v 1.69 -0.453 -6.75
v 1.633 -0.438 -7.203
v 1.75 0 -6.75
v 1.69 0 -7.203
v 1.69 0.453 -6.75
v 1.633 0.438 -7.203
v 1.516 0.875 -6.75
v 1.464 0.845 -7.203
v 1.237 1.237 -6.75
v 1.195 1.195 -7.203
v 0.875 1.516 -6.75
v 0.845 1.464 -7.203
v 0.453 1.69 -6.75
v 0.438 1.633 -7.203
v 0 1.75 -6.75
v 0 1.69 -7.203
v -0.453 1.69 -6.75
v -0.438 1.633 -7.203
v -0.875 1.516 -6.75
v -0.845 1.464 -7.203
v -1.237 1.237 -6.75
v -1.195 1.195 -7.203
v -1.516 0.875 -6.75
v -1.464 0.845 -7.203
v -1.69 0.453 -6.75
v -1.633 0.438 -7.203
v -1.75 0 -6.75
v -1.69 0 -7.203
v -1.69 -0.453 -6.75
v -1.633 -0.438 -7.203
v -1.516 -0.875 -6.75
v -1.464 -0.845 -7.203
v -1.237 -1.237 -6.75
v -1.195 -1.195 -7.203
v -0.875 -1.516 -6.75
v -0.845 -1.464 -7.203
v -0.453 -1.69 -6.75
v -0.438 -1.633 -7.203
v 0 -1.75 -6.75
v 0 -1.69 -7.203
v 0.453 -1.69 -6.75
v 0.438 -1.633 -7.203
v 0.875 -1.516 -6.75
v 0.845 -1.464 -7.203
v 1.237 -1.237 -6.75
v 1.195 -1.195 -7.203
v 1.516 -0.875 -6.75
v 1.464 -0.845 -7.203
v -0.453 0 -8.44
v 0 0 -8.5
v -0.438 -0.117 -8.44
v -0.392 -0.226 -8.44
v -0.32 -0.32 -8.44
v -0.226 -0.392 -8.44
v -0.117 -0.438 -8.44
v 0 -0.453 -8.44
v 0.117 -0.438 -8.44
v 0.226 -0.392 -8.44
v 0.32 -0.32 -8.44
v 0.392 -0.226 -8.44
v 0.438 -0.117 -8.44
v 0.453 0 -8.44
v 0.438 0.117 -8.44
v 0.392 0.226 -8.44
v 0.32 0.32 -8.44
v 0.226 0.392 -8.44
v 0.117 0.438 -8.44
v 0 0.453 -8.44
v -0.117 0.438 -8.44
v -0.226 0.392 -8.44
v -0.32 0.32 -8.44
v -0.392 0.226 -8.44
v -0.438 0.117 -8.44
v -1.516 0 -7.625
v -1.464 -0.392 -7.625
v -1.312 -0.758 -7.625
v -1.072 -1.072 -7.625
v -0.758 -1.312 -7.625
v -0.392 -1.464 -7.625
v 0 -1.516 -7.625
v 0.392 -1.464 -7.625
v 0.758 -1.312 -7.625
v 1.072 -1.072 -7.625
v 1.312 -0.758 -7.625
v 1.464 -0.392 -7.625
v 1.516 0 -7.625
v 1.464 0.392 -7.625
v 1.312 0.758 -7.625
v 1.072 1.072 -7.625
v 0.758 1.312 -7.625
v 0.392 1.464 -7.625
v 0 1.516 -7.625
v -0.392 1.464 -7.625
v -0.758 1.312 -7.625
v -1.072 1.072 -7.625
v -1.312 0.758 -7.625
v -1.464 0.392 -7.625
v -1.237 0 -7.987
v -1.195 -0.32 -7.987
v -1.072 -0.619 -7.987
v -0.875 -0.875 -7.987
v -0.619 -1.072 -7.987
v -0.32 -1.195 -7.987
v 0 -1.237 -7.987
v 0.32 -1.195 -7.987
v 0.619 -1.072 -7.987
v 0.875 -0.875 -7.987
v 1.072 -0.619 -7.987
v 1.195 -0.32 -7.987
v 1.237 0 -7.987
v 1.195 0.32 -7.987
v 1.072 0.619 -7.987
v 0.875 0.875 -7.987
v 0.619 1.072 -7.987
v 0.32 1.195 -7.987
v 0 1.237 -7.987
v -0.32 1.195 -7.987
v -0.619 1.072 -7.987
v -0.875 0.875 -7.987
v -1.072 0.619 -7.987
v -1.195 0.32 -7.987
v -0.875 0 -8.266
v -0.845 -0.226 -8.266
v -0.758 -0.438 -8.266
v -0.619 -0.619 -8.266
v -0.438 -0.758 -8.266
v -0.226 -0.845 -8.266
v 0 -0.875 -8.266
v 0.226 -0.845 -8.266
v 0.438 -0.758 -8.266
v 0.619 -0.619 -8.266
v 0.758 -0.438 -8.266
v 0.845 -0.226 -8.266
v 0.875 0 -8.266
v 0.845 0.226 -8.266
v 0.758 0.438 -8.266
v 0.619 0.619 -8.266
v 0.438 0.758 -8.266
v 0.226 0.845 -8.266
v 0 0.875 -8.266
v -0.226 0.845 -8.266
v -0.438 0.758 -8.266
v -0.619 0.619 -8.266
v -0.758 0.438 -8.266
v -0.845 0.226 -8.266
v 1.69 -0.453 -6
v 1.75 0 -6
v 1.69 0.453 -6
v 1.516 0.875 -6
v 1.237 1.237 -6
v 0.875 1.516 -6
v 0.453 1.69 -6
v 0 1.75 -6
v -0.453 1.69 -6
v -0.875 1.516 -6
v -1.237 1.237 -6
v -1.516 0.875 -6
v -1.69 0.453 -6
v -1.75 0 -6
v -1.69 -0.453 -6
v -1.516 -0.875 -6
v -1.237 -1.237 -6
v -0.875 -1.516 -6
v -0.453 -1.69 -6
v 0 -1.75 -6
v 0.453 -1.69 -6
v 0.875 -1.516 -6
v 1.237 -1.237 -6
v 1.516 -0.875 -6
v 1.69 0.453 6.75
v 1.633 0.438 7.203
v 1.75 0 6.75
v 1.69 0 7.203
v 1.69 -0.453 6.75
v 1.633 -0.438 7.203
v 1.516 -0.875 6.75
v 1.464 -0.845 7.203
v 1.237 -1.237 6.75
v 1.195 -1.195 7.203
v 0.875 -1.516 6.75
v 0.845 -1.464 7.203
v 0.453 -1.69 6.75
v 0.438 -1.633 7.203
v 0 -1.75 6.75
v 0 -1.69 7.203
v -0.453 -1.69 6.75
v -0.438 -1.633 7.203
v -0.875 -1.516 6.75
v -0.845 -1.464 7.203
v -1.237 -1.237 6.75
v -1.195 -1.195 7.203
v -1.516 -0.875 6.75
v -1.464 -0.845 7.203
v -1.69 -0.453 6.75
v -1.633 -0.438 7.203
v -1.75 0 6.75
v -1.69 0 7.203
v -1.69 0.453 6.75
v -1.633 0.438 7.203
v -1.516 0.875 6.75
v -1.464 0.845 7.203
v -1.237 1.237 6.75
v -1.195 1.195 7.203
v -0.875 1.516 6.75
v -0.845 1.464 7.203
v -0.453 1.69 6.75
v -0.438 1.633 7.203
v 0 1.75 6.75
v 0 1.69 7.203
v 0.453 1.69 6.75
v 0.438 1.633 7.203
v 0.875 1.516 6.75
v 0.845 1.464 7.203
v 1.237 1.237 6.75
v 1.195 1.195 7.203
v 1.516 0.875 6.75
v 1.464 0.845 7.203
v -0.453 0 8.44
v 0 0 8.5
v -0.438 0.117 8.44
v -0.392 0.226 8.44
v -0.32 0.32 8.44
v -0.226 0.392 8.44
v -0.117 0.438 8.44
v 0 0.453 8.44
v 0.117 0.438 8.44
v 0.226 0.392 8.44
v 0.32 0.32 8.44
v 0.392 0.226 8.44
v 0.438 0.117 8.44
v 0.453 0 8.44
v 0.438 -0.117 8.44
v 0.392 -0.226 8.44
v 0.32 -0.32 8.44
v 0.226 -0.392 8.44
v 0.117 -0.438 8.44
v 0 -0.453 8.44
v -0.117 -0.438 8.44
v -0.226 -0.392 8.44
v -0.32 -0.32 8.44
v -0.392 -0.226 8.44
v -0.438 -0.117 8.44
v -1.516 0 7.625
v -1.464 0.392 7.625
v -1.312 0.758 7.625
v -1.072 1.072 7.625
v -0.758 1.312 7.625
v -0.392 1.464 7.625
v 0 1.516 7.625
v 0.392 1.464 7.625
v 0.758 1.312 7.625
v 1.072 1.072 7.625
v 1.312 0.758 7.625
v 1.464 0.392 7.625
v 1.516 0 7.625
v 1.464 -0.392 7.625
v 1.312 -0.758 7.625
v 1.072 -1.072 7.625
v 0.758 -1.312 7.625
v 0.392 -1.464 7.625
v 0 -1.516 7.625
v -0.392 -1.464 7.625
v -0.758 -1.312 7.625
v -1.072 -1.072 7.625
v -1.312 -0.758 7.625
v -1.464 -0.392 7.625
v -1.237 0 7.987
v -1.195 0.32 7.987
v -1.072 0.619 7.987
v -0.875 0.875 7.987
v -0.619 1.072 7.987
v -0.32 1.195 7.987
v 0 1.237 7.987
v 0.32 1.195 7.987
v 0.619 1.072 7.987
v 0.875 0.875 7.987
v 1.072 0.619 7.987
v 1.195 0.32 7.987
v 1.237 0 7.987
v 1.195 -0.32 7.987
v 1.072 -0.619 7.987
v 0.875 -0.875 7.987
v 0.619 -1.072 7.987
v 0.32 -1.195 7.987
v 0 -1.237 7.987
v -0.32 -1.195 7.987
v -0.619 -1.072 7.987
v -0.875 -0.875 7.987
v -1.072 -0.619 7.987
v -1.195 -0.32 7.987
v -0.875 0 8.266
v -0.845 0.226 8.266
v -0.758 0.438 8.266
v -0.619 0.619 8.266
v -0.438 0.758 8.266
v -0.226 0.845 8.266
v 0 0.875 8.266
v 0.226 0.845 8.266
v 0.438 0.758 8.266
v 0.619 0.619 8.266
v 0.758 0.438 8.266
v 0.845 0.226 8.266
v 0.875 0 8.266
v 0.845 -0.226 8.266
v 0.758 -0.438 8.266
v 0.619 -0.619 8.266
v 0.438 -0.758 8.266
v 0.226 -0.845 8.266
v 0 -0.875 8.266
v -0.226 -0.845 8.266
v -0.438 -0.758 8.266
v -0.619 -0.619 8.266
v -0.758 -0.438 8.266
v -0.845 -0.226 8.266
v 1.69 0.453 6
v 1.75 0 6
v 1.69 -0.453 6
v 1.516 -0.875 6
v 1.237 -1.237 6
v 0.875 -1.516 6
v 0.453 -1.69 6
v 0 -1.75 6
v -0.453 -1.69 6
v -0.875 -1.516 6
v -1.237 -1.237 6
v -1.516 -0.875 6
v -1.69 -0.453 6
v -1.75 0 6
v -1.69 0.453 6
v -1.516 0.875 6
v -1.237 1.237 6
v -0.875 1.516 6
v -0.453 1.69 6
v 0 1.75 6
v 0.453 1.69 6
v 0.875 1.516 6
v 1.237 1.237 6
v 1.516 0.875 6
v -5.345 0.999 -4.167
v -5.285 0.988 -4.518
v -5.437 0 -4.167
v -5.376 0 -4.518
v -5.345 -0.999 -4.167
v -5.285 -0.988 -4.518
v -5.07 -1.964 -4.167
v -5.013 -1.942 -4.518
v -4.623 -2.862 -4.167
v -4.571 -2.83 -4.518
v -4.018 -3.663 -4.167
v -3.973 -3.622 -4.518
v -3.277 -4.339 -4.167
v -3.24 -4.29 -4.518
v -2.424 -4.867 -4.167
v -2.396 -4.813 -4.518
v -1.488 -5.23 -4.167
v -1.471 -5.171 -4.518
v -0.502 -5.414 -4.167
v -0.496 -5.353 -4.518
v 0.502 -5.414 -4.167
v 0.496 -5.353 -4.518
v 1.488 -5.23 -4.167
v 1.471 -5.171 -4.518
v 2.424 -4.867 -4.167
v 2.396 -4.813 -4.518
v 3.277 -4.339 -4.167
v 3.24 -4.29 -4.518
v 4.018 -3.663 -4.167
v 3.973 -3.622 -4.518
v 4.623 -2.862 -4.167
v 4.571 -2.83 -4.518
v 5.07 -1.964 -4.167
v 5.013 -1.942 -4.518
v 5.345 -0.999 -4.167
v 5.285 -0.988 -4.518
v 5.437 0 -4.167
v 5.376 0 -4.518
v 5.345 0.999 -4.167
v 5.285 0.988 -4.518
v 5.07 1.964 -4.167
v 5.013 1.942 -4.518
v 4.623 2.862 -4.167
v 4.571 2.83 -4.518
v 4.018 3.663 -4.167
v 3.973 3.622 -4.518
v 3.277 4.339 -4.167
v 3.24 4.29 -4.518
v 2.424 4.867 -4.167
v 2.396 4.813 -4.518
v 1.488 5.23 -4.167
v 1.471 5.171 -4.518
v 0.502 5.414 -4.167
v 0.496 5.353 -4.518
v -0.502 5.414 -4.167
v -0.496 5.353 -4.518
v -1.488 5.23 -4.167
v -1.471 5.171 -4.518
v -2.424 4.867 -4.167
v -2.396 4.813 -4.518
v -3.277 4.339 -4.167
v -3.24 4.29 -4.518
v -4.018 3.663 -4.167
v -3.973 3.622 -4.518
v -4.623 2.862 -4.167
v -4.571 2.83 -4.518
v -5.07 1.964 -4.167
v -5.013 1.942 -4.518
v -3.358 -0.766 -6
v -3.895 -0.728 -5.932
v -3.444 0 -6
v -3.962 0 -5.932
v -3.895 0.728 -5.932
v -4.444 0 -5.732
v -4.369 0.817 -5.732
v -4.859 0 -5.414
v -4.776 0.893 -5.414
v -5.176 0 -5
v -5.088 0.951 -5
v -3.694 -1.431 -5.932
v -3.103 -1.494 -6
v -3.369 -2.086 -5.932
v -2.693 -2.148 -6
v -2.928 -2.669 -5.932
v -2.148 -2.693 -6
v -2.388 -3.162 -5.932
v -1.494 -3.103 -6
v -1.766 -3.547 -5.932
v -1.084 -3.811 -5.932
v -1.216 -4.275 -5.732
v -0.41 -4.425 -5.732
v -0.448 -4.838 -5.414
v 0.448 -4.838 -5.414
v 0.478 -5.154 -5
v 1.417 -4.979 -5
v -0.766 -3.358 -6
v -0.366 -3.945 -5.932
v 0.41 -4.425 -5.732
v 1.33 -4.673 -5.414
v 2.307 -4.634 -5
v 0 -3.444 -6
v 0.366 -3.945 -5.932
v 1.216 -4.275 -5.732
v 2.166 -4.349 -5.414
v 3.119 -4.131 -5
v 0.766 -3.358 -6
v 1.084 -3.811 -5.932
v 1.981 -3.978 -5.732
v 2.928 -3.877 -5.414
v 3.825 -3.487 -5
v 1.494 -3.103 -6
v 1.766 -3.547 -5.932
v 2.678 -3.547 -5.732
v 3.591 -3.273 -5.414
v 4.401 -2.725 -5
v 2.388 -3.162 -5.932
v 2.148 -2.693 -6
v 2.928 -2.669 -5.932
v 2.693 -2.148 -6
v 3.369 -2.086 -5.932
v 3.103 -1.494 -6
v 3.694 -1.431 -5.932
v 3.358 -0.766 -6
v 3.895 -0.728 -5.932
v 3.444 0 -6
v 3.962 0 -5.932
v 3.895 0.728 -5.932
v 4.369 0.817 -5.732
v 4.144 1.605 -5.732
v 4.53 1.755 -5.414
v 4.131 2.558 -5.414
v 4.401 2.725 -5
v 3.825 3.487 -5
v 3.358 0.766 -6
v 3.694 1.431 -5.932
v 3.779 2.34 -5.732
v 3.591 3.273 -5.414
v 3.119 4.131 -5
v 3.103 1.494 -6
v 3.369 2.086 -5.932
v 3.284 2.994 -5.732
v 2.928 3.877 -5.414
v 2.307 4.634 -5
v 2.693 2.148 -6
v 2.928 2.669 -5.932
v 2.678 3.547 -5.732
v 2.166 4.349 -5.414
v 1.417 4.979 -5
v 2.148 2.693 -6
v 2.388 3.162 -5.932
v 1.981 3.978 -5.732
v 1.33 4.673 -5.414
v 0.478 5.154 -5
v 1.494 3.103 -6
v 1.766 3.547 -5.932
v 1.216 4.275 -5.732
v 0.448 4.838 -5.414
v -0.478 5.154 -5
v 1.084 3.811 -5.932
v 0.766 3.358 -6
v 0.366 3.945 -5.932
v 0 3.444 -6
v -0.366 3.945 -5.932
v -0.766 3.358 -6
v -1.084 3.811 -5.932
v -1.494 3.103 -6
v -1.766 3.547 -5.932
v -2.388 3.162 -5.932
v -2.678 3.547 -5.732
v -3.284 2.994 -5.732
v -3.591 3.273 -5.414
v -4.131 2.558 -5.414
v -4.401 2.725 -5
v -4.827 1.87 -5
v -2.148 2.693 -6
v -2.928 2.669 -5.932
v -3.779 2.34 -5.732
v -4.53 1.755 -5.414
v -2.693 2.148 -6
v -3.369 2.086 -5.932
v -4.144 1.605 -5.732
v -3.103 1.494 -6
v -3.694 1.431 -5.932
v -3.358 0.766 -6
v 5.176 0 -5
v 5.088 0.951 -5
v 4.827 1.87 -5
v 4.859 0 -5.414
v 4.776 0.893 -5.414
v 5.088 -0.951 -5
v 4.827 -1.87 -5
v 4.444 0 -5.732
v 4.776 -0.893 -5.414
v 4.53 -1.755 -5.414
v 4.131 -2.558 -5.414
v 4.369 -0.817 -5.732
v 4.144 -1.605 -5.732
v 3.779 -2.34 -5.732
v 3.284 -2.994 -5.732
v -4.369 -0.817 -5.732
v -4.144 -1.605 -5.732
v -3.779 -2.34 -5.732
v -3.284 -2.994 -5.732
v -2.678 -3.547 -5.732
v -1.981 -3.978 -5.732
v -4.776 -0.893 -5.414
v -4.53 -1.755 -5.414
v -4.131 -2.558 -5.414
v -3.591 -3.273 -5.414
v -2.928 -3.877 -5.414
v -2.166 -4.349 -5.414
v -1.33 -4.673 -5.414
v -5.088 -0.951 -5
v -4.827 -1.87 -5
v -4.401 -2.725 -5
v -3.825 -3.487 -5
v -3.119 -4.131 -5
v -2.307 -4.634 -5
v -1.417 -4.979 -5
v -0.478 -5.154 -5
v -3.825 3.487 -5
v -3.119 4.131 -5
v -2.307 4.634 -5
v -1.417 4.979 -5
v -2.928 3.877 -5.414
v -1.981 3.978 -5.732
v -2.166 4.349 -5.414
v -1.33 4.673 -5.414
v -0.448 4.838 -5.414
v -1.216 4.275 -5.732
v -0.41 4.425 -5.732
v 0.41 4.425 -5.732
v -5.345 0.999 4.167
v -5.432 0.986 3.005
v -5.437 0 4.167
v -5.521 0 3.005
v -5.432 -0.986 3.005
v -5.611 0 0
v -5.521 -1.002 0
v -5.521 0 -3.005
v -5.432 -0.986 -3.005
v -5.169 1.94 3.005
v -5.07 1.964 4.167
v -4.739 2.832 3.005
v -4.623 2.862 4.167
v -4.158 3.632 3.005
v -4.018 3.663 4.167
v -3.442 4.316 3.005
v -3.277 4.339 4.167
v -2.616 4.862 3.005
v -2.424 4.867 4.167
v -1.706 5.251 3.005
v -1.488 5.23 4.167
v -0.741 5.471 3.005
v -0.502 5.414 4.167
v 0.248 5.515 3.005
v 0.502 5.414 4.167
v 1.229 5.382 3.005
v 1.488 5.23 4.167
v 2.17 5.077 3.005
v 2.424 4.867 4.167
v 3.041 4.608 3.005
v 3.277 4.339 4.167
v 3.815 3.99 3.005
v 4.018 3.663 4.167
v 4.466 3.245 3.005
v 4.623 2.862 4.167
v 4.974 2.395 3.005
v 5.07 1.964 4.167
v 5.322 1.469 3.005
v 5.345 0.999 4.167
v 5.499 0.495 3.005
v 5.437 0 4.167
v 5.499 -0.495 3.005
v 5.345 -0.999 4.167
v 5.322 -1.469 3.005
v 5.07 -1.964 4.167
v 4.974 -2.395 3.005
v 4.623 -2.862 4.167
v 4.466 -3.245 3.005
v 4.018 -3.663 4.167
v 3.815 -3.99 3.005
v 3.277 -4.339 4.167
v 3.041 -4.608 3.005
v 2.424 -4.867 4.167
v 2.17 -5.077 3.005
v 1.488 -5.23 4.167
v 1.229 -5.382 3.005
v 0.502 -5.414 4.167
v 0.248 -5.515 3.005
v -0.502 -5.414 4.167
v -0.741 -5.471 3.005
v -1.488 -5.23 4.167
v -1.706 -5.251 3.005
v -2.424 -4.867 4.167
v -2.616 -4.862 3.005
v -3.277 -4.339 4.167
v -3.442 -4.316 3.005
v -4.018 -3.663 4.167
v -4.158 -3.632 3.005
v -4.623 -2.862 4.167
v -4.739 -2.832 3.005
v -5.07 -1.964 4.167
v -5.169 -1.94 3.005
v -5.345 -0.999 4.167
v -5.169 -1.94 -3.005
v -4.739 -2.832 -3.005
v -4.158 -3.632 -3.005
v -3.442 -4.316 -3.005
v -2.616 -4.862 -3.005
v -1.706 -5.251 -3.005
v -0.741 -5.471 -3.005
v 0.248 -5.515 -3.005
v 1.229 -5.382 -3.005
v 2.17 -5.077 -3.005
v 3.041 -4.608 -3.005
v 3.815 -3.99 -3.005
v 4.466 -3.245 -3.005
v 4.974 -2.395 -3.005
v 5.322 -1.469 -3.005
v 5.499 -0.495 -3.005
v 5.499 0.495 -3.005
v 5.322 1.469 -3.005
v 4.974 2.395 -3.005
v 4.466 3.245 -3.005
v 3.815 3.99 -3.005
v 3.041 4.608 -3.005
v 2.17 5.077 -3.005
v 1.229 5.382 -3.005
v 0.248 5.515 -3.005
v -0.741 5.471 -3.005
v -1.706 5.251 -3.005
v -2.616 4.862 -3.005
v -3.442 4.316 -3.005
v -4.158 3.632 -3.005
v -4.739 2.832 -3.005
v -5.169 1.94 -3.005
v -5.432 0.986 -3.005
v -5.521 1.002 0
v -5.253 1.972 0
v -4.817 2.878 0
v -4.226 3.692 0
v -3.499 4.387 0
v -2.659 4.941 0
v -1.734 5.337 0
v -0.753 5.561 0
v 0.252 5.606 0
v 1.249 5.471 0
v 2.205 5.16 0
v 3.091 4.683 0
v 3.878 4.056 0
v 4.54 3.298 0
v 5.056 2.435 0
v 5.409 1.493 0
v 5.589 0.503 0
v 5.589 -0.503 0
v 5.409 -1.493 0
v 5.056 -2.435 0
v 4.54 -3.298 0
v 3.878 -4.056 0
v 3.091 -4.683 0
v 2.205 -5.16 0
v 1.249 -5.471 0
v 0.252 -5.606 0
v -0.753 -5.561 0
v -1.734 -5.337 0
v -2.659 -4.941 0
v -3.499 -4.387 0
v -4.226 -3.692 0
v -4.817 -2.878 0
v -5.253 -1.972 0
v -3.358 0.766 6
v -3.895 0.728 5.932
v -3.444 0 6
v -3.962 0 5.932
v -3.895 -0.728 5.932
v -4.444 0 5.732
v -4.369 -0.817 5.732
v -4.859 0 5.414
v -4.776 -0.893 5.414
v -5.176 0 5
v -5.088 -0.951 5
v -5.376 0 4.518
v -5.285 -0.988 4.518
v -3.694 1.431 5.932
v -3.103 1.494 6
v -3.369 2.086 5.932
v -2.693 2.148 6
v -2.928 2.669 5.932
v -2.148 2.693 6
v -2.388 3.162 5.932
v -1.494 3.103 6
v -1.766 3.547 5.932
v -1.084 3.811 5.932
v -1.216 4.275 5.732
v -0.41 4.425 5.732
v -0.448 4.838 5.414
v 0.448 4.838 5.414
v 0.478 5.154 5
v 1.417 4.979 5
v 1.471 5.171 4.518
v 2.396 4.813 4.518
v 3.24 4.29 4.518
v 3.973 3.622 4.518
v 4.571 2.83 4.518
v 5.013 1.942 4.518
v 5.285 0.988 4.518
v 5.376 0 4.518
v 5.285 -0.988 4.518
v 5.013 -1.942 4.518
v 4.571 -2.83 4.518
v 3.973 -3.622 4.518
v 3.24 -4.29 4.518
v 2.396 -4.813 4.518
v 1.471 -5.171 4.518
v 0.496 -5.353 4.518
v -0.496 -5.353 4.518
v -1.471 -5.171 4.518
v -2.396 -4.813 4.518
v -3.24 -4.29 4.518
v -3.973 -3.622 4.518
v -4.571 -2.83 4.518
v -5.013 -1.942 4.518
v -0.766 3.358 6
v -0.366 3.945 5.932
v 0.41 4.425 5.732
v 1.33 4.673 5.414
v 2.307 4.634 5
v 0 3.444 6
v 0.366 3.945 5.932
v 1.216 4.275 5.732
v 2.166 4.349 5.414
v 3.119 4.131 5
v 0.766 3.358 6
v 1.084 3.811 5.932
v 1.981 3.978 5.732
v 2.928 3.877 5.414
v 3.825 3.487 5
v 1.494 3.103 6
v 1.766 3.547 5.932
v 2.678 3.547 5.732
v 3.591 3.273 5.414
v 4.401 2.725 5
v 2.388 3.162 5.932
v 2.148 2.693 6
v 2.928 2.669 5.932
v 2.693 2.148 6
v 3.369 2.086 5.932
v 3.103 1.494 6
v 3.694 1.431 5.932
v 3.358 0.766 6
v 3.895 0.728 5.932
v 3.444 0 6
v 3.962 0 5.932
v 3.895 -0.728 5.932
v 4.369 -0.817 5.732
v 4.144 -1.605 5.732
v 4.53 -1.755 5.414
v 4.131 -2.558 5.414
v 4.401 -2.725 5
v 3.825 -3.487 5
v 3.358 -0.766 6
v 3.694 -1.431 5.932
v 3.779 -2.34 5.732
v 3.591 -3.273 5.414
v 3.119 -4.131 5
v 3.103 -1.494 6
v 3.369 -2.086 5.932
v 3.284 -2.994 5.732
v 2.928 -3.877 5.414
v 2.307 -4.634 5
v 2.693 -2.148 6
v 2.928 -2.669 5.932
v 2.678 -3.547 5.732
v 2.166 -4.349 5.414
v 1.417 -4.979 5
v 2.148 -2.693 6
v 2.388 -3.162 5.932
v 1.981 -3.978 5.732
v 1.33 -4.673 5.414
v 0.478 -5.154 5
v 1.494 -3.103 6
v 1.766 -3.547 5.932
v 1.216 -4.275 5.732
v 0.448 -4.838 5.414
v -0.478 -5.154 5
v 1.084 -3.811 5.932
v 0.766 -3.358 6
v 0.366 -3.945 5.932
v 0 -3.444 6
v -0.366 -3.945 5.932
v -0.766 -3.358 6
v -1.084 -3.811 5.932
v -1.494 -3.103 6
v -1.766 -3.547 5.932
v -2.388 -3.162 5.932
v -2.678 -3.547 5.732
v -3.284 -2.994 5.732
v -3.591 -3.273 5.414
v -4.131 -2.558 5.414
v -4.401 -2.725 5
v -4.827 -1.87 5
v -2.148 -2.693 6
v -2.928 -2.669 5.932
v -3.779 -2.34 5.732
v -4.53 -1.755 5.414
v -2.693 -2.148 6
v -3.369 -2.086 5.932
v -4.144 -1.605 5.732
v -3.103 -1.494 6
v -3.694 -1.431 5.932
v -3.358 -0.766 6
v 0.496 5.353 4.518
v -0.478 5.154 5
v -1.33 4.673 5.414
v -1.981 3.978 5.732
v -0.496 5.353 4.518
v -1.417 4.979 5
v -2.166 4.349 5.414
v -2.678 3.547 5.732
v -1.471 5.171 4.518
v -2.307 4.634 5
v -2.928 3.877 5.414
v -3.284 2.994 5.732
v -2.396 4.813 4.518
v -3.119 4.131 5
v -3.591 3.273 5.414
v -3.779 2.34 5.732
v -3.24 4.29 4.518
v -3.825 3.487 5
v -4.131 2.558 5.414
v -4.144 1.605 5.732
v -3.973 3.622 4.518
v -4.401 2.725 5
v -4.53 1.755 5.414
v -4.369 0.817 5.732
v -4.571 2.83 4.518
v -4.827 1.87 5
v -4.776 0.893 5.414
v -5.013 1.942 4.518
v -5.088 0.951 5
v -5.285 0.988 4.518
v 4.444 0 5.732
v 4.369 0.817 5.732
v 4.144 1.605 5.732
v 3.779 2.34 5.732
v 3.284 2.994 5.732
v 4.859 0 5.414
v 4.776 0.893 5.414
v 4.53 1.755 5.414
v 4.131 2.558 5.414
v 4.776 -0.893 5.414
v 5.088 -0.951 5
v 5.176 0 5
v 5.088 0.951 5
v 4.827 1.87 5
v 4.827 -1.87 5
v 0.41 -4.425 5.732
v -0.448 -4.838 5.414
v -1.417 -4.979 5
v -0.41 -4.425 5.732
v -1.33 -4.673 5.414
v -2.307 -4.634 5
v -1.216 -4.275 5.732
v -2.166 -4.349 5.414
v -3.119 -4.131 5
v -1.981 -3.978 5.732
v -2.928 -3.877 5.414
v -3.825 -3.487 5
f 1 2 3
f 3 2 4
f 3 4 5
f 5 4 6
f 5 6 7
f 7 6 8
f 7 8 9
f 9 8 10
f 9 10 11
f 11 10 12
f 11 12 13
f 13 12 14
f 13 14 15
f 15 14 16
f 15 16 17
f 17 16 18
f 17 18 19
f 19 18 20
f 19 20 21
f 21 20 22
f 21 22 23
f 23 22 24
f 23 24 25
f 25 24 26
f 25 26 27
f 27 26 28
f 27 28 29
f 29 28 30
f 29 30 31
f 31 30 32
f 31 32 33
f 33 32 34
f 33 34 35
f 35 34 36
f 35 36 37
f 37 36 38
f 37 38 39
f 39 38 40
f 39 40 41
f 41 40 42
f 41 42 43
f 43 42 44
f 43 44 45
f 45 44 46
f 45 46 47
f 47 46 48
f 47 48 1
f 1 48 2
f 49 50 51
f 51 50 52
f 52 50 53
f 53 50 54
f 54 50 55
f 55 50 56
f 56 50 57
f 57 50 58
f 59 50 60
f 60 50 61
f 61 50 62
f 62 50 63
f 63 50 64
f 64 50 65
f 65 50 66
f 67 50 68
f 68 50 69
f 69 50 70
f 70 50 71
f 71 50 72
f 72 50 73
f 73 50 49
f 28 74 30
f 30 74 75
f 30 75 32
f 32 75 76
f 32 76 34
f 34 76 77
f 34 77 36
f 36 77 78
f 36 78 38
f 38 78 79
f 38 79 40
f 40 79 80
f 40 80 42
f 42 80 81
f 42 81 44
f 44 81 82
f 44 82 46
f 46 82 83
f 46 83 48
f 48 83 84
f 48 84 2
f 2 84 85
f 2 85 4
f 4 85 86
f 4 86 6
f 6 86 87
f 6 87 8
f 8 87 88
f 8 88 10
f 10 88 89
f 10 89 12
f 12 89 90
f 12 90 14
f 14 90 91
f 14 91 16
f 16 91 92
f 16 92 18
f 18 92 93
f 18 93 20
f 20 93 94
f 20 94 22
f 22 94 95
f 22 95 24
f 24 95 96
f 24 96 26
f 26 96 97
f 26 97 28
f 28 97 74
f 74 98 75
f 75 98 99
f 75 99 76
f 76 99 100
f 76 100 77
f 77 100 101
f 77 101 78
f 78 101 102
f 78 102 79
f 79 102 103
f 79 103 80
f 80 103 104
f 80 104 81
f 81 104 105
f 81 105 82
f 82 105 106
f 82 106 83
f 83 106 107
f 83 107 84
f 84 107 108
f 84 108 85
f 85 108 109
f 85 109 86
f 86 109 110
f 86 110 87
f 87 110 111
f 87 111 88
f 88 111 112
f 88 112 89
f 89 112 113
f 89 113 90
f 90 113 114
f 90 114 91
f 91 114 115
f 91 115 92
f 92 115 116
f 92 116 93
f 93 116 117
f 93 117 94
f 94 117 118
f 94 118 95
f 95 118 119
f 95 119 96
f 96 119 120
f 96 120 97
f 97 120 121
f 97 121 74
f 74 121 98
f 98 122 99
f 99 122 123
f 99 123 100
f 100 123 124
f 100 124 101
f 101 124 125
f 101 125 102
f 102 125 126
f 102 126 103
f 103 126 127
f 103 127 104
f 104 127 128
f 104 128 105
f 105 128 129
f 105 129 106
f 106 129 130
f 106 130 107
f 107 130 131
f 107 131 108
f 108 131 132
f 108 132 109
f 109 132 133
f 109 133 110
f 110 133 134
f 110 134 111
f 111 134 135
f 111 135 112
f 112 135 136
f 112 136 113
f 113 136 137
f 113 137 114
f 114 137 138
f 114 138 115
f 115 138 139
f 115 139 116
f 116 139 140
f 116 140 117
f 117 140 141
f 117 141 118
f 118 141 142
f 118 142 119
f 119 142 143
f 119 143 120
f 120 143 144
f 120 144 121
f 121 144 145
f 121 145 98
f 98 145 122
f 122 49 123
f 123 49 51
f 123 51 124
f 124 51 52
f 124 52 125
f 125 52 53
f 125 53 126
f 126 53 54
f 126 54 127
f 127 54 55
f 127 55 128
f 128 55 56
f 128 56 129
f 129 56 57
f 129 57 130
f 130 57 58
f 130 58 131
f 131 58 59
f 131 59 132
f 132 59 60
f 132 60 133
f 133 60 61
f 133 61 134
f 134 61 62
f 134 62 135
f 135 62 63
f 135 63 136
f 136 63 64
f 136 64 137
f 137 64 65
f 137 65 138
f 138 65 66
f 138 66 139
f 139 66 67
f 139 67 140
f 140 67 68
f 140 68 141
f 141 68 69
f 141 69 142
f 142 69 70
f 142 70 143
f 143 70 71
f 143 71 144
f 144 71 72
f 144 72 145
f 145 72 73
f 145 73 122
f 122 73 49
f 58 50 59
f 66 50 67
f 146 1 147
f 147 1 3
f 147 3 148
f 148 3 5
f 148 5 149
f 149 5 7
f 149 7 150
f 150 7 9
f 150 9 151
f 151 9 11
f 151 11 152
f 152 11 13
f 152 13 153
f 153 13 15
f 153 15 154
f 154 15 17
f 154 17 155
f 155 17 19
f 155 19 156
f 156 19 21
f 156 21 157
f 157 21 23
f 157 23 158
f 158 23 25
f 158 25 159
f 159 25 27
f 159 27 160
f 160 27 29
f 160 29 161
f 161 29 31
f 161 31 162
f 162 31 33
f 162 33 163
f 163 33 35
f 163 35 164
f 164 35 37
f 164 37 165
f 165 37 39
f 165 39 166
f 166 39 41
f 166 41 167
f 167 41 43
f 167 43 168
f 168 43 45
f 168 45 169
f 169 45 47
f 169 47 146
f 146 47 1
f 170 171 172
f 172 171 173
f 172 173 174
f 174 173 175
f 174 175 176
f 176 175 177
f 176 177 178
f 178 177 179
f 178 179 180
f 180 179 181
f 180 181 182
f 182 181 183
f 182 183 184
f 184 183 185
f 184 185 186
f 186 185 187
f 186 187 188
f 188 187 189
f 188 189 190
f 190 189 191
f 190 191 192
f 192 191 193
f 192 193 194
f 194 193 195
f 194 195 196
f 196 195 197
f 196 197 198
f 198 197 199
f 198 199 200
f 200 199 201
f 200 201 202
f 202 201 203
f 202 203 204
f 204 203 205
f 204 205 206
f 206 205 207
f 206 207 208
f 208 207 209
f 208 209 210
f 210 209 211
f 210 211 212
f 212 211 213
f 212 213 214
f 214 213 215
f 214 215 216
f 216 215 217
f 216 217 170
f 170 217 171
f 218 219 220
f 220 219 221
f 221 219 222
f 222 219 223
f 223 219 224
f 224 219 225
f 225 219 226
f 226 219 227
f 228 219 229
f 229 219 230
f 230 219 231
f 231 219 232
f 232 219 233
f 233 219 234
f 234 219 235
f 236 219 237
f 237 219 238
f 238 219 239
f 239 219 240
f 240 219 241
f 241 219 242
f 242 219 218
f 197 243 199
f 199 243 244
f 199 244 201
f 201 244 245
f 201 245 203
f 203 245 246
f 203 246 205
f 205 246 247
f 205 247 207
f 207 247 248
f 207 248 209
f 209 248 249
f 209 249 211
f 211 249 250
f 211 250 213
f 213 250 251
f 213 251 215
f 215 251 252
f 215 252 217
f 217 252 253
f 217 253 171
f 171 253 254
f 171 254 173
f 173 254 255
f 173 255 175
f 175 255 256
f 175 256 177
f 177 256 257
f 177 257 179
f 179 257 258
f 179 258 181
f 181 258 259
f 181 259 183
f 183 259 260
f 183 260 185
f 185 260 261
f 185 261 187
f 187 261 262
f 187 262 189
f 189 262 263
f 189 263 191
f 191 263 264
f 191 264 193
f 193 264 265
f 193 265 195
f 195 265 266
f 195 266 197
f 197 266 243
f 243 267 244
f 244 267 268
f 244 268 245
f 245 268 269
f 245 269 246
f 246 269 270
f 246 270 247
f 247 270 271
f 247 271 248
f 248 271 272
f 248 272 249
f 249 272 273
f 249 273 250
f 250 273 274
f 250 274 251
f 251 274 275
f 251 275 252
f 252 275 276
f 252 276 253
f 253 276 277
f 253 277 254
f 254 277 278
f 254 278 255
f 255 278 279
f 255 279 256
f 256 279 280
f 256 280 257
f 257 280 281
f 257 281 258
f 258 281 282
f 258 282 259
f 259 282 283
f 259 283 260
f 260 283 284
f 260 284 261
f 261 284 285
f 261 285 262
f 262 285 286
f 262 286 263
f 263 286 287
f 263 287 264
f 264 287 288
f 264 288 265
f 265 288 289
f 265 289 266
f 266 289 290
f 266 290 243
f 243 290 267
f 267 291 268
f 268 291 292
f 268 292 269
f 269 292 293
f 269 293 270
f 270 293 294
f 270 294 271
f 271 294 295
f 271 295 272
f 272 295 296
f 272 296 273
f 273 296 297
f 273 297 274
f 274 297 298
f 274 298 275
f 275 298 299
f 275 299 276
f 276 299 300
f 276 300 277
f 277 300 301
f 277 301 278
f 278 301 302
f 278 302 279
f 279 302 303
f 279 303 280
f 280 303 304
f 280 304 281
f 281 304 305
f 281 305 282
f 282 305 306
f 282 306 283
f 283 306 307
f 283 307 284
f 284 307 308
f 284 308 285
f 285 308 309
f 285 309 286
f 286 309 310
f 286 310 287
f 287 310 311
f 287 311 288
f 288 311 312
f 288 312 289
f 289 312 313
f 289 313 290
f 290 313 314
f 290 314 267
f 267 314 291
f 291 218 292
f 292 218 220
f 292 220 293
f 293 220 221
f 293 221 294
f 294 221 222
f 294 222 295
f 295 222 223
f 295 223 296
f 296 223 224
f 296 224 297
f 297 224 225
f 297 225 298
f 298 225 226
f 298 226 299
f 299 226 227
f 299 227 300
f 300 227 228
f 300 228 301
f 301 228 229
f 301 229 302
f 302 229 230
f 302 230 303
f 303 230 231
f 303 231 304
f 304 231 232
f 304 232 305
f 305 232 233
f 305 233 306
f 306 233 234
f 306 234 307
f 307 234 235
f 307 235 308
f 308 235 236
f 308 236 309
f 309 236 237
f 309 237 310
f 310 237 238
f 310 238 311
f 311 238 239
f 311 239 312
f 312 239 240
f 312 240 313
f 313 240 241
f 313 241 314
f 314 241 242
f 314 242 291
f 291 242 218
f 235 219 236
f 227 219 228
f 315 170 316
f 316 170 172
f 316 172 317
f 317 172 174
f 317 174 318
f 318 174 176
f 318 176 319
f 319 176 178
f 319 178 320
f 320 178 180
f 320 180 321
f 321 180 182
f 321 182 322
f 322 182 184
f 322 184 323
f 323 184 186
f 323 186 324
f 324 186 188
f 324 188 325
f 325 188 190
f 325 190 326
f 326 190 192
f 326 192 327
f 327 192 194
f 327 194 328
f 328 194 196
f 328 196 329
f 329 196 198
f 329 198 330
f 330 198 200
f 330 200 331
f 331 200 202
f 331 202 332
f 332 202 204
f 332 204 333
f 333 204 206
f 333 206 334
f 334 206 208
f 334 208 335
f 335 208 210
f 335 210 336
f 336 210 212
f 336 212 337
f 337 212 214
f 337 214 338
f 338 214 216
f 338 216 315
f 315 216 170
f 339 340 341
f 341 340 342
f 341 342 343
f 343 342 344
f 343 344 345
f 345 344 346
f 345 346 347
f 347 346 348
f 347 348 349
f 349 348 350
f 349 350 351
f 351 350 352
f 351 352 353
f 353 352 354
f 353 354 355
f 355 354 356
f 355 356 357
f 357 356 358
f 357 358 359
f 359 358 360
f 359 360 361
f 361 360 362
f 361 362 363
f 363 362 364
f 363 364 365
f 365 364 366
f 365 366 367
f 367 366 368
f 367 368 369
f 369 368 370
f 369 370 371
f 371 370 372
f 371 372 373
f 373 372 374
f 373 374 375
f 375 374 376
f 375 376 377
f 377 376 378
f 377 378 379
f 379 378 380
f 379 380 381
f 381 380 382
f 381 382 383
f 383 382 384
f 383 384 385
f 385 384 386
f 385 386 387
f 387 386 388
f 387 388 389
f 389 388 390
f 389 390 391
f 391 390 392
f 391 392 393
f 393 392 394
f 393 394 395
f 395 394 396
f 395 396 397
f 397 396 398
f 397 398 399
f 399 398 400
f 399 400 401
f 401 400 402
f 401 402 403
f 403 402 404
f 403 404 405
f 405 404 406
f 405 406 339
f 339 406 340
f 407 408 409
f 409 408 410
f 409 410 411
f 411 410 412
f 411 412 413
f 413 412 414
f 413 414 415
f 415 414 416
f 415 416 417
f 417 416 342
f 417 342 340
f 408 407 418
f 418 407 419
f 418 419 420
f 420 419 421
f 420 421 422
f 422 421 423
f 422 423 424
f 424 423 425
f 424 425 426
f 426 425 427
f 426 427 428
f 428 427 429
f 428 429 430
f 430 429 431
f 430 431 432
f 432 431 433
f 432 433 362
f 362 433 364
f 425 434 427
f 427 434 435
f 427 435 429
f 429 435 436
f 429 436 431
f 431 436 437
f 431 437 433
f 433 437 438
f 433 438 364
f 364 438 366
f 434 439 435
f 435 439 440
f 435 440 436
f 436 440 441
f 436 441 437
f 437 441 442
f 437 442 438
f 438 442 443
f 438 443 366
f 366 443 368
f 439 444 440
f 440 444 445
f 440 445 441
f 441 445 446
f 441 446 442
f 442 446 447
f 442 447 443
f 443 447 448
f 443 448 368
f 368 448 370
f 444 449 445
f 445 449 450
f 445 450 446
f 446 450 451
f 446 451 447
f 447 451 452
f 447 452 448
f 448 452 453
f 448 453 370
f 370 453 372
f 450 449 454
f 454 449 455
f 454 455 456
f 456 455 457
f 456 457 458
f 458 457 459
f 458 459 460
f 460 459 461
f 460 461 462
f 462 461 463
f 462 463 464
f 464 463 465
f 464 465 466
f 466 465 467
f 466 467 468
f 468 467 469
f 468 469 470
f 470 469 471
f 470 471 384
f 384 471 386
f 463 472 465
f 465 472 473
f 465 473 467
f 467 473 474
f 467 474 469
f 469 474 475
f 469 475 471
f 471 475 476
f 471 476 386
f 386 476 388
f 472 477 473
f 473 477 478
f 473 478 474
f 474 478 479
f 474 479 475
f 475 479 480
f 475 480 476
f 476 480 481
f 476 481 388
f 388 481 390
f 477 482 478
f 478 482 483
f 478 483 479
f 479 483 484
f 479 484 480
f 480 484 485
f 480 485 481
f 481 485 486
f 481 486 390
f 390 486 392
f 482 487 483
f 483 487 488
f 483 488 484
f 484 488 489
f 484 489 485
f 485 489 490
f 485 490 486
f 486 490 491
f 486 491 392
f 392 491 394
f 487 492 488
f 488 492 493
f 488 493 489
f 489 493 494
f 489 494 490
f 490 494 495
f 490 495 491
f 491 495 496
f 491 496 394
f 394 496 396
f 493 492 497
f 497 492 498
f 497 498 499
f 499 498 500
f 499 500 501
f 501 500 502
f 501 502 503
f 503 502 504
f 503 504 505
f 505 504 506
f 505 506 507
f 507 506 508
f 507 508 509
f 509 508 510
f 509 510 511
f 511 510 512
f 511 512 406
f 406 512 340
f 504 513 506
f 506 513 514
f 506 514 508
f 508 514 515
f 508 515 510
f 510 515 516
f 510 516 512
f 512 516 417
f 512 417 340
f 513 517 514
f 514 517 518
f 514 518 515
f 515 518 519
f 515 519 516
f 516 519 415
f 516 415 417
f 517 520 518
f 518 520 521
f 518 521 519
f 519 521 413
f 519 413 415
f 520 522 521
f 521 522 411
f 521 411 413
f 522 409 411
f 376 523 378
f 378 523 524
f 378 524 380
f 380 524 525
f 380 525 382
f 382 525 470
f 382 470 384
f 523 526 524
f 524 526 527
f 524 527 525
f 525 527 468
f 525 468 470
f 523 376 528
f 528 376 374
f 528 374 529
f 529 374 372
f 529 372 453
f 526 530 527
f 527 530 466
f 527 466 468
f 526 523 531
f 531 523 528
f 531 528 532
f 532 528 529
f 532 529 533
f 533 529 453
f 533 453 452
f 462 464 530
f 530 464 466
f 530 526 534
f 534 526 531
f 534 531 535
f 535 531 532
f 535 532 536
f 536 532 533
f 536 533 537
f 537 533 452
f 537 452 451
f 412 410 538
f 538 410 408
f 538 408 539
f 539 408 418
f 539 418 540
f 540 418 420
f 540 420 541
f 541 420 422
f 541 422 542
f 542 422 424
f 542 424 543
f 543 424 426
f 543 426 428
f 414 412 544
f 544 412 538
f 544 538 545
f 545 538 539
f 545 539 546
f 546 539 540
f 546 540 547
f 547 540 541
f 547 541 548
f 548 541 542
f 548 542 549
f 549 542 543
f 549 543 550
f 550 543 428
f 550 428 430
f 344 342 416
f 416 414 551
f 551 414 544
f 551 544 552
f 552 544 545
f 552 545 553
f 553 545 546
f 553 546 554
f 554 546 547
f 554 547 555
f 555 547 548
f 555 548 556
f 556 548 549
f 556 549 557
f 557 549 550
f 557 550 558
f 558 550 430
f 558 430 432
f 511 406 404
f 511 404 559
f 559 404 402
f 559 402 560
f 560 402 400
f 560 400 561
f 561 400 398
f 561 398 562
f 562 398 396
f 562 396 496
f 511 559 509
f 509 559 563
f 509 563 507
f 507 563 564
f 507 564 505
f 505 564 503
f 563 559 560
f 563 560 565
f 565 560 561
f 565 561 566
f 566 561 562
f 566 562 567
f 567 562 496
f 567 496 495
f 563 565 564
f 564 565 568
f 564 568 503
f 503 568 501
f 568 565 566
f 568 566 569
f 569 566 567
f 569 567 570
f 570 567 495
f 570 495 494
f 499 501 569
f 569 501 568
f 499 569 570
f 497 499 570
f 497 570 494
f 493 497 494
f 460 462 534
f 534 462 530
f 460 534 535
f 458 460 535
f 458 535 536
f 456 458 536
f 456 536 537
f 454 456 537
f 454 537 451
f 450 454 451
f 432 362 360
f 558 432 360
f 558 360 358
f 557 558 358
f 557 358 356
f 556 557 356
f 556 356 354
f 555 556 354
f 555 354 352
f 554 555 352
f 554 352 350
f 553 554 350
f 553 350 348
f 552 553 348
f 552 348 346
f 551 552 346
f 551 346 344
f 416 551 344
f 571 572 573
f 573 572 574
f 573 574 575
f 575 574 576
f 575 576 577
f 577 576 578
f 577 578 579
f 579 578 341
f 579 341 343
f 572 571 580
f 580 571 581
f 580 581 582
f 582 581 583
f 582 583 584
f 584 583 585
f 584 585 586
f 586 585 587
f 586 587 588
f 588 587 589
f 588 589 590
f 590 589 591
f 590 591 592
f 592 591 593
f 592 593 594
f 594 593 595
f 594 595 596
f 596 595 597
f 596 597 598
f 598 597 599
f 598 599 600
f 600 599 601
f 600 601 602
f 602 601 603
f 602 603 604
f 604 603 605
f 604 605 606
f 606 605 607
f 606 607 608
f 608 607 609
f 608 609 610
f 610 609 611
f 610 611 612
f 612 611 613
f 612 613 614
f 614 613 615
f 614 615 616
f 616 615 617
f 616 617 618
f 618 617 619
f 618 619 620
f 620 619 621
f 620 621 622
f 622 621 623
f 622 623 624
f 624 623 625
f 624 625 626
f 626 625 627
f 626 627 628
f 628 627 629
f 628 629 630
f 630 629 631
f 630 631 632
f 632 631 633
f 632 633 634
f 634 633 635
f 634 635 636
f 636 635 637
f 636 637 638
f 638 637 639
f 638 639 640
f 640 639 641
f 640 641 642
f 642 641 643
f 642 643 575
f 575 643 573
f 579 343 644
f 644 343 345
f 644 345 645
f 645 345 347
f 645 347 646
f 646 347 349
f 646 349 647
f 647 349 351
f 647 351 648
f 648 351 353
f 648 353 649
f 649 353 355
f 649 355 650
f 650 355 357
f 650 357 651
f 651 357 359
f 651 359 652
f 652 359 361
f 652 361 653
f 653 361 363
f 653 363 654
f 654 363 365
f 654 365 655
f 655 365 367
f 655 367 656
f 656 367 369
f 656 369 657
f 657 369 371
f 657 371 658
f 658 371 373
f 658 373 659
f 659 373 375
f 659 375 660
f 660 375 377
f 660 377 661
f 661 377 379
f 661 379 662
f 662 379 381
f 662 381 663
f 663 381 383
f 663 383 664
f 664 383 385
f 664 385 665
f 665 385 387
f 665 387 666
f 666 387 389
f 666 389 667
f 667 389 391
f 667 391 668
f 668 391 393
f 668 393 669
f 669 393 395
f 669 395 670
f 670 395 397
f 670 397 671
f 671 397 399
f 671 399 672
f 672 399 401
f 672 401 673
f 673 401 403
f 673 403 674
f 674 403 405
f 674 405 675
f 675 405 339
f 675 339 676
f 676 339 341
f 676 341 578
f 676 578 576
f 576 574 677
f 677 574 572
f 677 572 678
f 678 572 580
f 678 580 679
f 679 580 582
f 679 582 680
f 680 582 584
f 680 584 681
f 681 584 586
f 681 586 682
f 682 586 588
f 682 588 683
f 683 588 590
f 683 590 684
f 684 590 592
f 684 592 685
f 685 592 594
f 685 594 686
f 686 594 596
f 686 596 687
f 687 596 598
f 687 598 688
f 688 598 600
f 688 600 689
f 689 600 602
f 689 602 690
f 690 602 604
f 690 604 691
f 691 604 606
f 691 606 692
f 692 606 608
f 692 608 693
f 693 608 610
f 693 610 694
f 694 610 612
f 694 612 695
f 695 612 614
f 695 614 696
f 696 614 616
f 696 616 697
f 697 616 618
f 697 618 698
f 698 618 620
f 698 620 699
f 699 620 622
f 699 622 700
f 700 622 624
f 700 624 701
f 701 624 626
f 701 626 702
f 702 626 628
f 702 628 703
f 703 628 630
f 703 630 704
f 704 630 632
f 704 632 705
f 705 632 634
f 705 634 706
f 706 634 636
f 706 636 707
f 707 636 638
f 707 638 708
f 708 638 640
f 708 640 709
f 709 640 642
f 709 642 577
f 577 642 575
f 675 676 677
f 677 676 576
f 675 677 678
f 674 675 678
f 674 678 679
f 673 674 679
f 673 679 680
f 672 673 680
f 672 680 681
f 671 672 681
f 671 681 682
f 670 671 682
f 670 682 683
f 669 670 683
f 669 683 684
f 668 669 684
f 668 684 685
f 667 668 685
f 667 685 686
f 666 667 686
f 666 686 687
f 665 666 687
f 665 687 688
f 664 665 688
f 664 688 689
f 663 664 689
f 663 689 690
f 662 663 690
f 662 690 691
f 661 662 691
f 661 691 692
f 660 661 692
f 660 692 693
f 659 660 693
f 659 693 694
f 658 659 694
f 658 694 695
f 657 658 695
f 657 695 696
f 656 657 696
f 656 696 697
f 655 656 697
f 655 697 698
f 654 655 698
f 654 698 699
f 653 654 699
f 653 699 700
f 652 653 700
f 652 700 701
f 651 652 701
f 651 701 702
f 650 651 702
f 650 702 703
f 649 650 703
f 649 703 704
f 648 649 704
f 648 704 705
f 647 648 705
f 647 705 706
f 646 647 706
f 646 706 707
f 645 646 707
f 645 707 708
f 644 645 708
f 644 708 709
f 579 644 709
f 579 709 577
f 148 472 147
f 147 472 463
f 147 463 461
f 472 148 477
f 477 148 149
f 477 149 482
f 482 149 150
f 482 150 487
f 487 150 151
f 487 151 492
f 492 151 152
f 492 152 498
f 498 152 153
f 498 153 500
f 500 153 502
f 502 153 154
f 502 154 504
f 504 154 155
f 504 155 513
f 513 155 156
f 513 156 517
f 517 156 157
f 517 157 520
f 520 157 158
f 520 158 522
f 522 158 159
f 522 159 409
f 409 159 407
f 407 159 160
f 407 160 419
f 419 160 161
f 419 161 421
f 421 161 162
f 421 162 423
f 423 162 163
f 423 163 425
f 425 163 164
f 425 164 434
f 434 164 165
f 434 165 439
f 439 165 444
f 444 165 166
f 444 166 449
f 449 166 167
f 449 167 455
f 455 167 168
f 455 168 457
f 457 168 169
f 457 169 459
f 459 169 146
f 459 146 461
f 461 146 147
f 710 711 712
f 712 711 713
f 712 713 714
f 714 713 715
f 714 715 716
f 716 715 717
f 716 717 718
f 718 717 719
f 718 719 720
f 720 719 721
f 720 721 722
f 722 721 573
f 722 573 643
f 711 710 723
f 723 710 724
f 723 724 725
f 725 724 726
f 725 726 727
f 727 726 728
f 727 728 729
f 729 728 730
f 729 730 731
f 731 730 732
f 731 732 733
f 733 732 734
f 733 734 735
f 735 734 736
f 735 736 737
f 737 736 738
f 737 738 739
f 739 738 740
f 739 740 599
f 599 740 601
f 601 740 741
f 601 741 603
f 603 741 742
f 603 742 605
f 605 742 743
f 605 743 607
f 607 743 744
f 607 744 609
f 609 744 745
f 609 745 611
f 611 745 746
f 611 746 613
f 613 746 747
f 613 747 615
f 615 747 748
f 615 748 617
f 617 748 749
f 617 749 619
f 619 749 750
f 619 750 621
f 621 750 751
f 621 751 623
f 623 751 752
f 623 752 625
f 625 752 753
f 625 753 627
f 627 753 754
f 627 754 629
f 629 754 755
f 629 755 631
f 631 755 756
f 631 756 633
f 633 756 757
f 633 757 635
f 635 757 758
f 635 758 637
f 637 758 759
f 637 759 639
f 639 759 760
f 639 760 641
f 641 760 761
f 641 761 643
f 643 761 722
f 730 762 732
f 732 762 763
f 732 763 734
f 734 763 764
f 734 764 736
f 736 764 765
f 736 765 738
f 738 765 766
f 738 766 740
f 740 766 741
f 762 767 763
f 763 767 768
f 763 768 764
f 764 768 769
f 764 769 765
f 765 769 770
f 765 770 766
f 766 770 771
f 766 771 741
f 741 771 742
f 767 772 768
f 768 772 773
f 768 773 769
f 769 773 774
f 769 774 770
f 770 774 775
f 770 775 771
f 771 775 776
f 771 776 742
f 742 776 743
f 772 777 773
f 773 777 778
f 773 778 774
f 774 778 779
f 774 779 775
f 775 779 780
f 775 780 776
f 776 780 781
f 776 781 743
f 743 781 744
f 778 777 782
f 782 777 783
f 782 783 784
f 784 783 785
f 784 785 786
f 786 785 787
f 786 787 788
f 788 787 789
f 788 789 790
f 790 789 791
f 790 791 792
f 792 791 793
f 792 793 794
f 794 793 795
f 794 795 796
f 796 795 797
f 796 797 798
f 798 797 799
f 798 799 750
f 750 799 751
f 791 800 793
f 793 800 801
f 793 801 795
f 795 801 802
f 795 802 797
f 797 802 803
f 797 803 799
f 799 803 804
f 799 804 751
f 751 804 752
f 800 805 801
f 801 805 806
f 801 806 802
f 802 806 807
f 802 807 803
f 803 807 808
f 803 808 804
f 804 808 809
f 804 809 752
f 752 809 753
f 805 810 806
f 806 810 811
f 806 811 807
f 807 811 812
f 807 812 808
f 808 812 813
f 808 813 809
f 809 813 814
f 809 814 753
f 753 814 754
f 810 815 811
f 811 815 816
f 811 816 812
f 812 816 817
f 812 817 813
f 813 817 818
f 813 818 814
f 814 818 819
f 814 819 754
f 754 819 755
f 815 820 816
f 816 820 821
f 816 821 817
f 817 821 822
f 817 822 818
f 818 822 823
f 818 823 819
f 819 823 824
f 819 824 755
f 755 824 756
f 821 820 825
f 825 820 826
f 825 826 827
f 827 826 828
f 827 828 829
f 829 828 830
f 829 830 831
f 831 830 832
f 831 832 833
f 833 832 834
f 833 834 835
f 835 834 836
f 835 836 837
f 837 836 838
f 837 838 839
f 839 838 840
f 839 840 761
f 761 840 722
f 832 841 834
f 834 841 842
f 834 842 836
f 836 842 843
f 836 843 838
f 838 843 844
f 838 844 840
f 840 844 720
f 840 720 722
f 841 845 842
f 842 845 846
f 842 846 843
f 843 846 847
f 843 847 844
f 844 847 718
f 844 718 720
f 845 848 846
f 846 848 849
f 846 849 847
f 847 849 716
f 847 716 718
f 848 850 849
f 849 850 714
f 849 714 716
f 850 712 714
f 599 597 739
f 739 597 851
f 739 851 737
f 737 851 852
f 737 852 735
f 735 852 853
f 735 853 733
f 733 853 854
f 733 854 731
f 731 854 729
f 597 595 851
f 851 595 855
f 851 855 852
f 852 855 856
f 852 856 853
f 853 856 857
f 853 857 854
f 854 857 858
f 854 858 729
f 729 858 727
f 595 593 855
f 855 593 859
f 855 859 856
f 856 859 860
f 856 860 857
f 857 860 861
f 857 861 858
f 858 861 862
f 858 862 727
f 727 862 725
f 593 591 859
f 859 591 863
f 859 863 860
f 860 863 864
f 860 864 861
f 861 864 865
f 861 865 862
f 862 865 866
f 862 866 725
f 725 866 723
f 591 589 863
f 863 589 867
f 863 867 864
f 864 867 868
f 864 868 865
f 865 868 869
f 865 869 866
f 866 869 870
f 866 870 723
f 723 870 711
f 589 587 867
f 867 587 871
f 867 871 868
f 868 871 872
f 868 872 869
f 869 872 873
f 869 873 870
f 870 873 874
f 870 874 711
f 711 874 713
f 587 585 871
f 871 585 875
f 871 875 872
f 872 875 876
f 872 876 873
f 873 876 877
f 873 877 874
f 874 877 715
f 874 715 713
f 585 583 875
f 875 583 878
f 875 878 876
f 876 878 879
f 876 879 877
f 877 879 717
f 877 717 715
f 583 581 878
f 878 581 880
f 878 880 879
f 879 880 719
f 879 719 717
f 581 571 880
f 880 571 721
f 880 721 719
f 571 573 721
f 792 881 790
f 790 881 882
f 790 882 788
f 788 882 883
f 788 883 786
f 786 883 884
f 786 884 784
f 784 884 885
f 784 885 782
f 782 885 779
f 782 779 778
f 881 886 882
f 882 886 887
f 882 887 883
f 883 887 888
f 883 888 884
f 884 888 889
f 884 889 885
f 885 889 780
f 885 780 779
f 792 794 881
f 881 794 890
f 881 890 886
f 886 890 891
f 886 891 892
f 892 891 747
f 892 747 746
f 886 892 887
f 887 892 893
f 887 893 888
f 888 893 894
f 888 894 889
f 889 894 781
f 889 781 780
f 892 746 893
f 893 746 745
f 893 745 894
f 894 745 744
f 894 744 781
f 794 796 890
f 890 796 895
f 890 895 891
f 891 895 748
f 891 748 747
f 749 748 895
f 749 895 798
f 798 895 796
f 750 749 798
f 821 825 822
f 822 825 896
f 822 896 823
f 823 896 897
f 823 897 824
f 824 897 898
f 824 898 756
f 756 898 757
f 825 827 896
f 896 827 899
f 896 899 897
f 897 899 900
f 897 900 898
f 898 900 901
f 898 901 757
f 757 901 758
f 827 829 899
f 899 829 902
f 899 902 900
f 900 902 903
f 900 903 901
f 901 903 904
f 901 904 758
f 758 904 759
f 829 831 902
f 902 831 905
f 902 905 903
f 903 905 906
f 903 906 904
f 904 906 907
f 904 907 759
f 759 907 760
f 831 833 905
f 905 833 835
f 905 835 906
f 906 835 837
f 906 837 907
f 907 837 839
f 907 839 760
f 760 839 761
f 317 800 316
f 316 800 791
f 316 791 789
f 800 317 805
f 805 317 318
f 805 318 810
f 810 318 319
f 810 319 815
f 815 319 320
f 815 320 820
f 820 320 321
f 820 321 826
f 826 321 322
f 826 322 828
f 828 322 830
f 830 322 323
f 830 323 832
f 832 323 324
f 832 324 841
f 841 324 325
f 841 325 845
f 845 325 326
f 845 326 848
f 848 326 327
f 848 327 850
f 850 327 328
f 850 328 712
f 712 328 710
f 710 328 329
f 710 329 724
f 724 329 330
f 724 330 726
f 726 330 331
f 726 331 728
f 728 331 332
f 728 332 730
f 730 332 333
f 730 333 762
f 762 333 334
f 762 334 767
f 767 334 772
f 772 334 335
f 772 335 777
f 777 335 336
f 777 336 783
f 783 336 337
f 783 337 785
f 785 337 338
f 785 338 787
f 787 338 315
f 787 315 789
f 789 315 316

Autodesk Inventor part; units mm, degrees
ref_plane "YZ Plane" through (0, 0, 0) normal (1, 0, 0) x (0, 1, 0)
ref_plane "XZ Plane" through (0, 0, 0) normal (0, 1, 0) x (-1, 0, 0)
sketch "Sketch1" plane through (0, 0, 0) normal (0, 0, 1) x (1, 0, 0)
  circle A0 centre (0, 0) radius 6
  dimension "d0" = 12
ref_plane "Work Plane1" through (0, 0, 6) normal (0, 0, 1) x (1, 0, 0)
sketch "Sketch2" plane through (0, 0, 6) normal (0, 0, 1) x (1, 0, 0)
  circle A0 centre (0, 0) radius 5.25
  dimension "d2" = 10.5
loft "Loft1" add profiles "Sketch1", "Sketch2"
mirror "Mirror1" about plane through (0, 0, 0) normal (0, 0, 1) of "Loft1"
fillet "Fillet1" radius 50 1 edges at (-6, 0, 0)
fillet "Fillet2" radius 2 2 edges at (-5.2496, -0.0003, 6) (-5.2496, -0.0002, -6)
sketch "Sketch3" plane through (0, 0, 6) normal (0, 0, 1) x (1, 0, 0)
  circle A0 centre (0, 0) radius 1.75
  dimension "d9" = 3.5
extrude "Extrusion1" add sketch "Sketch3" along normal blind 2.5
fillet "Fillet3" radius 1.75 1 edges at (-1.75, 0, 8.5)
mirror "Mirror2" about plane through (0, 0, 0) normal (0, 0, 1) of "Extrusion1", "Fillet3"
properties part number "omni_roller_v2"
